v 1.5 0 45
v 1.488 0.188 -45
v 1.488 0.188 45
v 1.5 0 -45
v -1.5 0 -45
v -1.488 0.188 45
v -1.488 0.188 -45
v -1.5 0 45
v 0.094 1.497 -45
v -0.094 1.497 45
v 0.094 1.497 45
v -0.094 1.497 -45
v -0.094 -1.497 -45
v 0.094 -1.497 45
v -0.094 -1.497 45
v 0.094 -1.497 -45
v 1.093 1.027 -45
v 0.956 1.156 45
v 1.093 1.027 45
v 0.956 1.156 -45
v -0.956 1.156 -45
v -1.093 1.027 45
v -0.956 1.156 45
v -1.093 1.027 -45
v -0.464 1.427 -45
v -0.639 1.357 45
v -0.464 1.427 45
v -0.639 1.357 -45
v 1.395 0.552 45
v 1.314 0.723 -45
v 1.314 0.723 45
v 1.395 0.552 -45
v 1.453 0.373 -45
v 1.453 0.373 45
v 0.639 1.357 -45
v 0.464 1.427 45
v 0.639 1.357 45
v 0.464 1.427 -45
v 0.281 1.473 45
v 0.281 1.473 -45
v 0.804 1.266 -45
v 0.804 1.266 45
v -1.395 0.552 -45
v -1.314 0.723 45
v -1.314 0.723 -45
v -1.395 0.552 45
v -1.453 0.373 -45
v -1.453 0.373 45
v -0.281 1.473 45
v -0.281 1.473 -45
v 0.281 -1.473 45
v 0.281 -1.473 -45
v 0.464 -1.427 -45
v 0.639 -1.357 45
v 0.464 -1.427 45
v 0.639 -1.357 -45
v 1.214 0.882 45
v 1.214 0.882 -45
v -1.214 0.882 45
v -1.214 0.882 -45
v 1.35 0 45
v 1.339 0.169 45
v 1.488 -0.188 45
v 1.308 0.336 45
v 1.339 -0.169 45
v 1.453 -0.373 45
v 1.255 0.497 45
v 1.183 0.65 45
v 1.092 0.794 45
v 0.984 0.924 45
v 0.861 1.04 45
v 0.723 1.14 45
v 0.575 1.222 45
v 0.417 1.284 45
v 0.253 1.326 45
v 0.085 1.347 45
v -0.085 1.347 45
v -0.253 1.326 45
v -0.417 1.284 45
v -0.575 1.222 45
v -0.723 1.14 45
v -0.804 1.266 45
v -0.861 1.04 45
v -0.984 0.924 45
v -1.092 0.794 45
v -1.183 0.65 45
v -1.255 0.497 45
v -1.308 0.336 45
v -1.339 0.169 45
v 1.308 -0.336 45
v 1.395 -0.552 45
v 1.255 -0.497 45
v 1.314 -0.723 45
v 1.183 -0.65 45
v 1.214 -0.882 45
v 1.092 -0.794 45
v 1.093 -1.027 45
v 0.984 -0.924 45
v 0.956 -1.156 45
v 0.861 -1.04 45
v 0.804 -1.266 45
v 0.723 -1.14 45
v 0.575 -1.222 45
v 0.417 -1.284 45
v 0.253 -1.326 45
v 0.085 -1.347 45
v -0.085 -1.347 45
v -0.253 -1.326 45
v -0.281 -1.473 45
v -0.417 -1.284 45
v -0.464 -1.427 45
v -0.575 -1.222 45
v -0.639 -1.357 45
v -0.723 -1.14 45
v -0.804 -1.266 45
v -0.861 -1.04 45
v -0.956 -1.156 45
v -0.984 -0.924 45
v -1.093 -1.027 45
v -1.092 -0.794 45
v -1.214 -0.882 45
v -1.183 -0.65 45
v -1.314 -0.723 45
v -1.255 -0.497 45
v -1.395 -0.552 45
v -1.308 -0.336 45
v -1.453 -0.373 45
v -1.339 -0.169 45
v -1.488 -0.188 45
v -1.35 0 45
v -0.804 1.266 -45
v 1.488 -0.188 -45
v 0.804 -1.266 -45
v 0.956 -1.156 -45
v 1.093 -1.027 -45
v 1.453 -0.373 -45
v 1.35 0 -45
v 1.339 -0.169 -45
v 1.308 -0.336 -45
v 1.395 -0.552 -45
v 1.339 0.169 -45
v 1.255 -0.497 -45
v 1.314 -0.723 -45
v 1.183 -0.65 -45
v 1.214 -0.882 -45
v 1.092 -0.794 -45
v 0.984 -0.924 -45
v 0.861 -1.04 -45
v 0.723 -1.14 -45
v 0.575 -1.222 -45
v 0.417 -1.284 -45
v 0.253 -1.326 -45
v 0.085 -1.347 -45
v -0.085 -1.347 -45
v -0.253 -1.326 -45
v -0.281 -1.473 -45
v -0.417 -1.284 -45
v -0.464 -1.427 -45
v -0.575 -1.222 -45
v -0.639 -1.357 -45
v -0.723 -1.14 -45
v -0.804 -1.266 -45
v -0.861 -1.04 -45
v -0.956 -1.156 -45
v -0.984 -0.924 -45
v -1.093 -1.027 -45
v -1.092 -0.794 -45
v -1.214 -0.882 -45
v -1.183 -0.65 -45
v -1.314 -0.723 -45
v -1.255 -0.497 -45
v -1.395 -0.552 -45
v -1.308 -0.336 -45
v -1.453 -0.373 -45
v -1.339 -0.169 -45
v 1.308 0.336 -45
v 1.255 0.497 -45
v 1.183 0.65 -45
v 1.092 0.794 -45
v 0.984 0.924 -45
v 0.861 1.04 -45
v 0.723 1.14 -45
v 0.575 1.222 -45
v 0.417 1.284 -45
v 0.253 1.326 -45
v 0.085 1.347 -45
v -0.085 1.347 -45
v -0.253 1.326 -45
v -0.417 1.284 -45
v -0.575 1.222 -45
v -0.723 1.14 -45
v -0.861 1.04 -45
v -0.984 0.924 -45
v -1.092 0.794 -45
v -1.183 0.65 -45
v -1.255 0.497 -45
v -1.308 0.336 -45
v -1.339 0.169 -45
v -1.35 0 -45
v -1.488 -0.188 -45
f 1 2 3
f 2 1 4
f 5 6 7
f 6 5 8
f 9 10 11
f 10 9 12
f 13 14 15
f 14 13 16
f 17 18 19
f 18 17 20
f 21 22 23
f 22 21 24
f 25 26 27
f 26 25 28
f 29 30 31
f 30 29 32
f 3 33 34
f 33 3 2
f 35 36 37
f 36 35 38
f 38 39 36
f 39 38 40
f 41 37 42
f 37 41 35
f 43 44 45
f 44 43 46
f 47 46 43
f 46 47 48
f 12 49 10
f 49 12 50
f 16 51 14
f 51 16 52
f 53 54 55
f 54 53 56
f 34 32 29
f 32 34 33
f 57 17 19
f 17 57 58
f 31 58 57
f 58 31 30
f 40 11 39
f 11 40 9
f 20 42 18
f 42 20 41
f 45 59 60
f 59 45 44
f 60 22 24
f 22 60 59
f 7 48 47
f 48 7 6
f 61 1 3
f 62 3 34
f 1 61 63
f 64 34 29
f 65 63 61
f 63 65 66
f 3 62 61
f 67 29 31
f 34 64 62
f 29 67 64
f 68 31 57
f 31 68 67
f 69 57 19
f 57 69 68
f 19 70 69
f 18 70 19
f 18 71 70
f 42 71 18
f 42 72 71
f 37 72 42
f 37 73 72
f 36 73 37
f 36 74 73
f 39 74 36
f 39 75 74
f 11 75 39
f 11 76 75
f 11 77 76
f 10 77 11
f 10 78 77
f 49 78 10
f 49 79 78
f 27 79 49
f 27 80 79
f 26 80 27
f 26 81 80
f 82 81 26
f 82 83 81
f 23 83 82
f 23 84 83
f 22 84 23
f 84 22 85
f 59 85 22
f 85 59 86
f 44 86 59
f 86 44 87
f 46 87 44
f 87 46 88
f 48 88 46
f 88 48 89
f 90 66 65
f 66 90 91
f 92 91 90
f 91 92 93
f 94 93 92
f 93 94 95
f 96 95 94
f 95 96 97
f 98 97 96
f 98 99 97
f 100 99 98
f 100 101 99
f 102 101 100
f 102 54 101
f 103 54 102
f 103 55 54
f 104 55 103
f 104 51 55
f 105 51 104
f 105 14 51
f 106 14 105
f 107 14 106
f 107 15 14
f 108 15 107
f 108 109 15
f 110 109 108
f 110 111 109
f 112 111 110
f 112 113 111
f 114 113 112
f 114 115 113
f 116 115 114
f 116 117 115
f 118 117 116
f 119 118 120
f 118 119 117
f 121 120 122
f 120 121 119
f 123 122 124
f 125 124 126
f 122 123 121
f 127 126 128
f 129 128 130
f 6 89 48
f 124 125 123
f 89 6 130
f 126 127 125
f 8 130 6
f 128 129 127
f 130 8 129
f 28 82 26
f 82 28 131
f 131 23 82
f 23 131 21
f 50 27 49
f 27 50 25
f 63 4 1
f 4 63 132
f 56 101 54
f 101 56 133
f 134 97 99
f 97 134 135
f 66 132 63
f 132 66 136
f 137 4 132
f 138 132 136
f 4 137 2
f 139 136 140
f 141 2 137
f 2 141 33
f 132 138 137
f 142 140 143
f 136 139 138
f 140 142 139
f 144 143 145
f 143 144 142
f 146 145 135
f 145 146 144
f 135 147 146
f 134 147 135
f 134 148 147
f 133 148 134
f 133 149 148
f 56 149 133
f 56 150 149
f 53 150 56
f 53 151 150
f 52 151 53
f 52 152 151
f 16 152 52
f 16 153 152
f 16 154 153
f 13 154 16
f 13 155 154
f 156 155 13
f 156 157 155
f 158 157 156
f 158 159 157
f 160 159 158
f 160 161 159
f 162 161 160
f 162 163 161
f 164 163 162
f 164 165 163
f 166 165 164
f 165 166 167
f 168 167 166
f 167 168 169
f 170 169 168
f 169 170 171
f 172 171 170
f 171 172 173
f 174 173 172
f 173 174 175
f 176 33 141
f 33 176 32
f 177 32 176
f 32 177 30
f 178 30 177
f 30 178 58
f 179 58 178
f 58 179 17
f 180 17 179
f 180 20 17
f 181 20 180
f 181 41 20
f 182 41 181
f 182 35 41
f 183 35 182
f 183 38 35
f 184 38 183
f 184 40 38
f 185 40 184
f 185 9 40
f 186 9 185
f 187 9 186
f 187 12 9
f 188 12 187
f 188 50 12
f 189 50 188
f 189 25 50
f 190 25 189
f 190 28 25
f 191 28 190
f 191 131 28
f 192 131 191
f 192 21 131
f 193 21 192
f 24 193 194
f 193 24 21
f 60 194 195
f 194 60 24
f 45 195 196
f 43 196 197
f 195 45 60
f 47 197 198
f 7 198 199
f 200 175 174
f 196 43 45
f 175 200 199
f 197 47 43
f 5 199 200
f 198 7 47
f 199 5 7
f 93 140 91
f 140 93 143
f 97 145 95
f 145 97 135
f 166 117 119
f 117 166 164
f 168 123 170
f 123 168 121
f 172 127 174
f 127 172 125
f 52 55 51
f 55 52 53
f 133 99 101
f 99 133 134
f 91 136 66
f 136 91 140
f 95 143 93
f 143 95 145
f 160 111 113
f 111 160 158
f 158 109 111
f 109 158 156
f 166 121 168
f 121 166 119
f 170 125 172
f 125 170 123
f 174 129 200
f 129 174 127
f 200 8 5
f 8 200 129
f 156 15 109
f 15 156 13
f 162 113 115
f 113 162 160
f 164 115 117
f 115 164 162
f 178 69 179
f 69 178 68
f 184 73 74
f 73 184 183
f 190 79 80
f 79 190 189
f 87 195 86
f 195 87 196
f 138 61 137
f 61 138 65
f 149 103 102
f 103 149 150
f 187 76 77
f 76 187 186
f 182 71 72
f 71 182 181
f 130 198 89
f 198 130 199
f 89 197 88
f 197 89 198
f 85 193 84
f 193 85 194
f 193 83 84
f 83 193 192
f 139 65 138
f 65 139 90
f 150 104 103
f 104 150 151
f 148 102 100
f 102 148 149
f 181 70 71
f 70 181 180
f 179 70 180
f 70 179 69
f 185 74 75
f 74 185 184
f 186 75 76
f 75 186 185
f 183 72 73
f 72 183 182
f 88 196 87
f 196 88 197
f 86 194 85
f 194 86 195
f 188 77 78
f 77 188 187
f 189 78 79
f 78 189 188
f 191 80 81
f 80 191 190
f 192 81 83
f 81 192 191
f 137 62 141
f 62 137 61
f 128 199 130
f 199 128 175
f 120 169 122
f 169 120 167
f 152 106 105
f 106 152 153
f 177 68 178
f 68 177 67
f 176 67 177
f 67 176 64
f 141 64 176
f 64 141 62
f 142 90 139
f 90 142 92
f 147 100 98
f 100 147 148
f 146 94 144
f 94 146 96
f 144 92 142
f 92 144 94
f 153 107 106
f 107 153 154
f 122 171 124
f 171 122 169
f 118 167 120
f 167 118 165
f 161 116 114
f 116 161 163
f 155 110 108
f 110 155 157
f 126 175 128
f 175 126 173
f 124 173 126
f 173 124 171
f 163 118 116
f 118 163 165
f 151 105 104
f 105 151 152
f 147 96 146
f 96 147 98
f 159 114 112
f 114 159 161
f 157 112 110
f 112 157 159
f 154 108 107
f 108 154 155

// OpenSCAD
$fn = 50;


difference() {
	union() {
		translate(v = [0, 0, -45.0000000000]) {
			cylinder(h = 90, r = 1.5000000000);
		}
	}
	union() {
		translate(v = [0, 0, -100.0000000000]) {
			cylinder(h = 200, r = 1.3500000000);
		}
	}
}
